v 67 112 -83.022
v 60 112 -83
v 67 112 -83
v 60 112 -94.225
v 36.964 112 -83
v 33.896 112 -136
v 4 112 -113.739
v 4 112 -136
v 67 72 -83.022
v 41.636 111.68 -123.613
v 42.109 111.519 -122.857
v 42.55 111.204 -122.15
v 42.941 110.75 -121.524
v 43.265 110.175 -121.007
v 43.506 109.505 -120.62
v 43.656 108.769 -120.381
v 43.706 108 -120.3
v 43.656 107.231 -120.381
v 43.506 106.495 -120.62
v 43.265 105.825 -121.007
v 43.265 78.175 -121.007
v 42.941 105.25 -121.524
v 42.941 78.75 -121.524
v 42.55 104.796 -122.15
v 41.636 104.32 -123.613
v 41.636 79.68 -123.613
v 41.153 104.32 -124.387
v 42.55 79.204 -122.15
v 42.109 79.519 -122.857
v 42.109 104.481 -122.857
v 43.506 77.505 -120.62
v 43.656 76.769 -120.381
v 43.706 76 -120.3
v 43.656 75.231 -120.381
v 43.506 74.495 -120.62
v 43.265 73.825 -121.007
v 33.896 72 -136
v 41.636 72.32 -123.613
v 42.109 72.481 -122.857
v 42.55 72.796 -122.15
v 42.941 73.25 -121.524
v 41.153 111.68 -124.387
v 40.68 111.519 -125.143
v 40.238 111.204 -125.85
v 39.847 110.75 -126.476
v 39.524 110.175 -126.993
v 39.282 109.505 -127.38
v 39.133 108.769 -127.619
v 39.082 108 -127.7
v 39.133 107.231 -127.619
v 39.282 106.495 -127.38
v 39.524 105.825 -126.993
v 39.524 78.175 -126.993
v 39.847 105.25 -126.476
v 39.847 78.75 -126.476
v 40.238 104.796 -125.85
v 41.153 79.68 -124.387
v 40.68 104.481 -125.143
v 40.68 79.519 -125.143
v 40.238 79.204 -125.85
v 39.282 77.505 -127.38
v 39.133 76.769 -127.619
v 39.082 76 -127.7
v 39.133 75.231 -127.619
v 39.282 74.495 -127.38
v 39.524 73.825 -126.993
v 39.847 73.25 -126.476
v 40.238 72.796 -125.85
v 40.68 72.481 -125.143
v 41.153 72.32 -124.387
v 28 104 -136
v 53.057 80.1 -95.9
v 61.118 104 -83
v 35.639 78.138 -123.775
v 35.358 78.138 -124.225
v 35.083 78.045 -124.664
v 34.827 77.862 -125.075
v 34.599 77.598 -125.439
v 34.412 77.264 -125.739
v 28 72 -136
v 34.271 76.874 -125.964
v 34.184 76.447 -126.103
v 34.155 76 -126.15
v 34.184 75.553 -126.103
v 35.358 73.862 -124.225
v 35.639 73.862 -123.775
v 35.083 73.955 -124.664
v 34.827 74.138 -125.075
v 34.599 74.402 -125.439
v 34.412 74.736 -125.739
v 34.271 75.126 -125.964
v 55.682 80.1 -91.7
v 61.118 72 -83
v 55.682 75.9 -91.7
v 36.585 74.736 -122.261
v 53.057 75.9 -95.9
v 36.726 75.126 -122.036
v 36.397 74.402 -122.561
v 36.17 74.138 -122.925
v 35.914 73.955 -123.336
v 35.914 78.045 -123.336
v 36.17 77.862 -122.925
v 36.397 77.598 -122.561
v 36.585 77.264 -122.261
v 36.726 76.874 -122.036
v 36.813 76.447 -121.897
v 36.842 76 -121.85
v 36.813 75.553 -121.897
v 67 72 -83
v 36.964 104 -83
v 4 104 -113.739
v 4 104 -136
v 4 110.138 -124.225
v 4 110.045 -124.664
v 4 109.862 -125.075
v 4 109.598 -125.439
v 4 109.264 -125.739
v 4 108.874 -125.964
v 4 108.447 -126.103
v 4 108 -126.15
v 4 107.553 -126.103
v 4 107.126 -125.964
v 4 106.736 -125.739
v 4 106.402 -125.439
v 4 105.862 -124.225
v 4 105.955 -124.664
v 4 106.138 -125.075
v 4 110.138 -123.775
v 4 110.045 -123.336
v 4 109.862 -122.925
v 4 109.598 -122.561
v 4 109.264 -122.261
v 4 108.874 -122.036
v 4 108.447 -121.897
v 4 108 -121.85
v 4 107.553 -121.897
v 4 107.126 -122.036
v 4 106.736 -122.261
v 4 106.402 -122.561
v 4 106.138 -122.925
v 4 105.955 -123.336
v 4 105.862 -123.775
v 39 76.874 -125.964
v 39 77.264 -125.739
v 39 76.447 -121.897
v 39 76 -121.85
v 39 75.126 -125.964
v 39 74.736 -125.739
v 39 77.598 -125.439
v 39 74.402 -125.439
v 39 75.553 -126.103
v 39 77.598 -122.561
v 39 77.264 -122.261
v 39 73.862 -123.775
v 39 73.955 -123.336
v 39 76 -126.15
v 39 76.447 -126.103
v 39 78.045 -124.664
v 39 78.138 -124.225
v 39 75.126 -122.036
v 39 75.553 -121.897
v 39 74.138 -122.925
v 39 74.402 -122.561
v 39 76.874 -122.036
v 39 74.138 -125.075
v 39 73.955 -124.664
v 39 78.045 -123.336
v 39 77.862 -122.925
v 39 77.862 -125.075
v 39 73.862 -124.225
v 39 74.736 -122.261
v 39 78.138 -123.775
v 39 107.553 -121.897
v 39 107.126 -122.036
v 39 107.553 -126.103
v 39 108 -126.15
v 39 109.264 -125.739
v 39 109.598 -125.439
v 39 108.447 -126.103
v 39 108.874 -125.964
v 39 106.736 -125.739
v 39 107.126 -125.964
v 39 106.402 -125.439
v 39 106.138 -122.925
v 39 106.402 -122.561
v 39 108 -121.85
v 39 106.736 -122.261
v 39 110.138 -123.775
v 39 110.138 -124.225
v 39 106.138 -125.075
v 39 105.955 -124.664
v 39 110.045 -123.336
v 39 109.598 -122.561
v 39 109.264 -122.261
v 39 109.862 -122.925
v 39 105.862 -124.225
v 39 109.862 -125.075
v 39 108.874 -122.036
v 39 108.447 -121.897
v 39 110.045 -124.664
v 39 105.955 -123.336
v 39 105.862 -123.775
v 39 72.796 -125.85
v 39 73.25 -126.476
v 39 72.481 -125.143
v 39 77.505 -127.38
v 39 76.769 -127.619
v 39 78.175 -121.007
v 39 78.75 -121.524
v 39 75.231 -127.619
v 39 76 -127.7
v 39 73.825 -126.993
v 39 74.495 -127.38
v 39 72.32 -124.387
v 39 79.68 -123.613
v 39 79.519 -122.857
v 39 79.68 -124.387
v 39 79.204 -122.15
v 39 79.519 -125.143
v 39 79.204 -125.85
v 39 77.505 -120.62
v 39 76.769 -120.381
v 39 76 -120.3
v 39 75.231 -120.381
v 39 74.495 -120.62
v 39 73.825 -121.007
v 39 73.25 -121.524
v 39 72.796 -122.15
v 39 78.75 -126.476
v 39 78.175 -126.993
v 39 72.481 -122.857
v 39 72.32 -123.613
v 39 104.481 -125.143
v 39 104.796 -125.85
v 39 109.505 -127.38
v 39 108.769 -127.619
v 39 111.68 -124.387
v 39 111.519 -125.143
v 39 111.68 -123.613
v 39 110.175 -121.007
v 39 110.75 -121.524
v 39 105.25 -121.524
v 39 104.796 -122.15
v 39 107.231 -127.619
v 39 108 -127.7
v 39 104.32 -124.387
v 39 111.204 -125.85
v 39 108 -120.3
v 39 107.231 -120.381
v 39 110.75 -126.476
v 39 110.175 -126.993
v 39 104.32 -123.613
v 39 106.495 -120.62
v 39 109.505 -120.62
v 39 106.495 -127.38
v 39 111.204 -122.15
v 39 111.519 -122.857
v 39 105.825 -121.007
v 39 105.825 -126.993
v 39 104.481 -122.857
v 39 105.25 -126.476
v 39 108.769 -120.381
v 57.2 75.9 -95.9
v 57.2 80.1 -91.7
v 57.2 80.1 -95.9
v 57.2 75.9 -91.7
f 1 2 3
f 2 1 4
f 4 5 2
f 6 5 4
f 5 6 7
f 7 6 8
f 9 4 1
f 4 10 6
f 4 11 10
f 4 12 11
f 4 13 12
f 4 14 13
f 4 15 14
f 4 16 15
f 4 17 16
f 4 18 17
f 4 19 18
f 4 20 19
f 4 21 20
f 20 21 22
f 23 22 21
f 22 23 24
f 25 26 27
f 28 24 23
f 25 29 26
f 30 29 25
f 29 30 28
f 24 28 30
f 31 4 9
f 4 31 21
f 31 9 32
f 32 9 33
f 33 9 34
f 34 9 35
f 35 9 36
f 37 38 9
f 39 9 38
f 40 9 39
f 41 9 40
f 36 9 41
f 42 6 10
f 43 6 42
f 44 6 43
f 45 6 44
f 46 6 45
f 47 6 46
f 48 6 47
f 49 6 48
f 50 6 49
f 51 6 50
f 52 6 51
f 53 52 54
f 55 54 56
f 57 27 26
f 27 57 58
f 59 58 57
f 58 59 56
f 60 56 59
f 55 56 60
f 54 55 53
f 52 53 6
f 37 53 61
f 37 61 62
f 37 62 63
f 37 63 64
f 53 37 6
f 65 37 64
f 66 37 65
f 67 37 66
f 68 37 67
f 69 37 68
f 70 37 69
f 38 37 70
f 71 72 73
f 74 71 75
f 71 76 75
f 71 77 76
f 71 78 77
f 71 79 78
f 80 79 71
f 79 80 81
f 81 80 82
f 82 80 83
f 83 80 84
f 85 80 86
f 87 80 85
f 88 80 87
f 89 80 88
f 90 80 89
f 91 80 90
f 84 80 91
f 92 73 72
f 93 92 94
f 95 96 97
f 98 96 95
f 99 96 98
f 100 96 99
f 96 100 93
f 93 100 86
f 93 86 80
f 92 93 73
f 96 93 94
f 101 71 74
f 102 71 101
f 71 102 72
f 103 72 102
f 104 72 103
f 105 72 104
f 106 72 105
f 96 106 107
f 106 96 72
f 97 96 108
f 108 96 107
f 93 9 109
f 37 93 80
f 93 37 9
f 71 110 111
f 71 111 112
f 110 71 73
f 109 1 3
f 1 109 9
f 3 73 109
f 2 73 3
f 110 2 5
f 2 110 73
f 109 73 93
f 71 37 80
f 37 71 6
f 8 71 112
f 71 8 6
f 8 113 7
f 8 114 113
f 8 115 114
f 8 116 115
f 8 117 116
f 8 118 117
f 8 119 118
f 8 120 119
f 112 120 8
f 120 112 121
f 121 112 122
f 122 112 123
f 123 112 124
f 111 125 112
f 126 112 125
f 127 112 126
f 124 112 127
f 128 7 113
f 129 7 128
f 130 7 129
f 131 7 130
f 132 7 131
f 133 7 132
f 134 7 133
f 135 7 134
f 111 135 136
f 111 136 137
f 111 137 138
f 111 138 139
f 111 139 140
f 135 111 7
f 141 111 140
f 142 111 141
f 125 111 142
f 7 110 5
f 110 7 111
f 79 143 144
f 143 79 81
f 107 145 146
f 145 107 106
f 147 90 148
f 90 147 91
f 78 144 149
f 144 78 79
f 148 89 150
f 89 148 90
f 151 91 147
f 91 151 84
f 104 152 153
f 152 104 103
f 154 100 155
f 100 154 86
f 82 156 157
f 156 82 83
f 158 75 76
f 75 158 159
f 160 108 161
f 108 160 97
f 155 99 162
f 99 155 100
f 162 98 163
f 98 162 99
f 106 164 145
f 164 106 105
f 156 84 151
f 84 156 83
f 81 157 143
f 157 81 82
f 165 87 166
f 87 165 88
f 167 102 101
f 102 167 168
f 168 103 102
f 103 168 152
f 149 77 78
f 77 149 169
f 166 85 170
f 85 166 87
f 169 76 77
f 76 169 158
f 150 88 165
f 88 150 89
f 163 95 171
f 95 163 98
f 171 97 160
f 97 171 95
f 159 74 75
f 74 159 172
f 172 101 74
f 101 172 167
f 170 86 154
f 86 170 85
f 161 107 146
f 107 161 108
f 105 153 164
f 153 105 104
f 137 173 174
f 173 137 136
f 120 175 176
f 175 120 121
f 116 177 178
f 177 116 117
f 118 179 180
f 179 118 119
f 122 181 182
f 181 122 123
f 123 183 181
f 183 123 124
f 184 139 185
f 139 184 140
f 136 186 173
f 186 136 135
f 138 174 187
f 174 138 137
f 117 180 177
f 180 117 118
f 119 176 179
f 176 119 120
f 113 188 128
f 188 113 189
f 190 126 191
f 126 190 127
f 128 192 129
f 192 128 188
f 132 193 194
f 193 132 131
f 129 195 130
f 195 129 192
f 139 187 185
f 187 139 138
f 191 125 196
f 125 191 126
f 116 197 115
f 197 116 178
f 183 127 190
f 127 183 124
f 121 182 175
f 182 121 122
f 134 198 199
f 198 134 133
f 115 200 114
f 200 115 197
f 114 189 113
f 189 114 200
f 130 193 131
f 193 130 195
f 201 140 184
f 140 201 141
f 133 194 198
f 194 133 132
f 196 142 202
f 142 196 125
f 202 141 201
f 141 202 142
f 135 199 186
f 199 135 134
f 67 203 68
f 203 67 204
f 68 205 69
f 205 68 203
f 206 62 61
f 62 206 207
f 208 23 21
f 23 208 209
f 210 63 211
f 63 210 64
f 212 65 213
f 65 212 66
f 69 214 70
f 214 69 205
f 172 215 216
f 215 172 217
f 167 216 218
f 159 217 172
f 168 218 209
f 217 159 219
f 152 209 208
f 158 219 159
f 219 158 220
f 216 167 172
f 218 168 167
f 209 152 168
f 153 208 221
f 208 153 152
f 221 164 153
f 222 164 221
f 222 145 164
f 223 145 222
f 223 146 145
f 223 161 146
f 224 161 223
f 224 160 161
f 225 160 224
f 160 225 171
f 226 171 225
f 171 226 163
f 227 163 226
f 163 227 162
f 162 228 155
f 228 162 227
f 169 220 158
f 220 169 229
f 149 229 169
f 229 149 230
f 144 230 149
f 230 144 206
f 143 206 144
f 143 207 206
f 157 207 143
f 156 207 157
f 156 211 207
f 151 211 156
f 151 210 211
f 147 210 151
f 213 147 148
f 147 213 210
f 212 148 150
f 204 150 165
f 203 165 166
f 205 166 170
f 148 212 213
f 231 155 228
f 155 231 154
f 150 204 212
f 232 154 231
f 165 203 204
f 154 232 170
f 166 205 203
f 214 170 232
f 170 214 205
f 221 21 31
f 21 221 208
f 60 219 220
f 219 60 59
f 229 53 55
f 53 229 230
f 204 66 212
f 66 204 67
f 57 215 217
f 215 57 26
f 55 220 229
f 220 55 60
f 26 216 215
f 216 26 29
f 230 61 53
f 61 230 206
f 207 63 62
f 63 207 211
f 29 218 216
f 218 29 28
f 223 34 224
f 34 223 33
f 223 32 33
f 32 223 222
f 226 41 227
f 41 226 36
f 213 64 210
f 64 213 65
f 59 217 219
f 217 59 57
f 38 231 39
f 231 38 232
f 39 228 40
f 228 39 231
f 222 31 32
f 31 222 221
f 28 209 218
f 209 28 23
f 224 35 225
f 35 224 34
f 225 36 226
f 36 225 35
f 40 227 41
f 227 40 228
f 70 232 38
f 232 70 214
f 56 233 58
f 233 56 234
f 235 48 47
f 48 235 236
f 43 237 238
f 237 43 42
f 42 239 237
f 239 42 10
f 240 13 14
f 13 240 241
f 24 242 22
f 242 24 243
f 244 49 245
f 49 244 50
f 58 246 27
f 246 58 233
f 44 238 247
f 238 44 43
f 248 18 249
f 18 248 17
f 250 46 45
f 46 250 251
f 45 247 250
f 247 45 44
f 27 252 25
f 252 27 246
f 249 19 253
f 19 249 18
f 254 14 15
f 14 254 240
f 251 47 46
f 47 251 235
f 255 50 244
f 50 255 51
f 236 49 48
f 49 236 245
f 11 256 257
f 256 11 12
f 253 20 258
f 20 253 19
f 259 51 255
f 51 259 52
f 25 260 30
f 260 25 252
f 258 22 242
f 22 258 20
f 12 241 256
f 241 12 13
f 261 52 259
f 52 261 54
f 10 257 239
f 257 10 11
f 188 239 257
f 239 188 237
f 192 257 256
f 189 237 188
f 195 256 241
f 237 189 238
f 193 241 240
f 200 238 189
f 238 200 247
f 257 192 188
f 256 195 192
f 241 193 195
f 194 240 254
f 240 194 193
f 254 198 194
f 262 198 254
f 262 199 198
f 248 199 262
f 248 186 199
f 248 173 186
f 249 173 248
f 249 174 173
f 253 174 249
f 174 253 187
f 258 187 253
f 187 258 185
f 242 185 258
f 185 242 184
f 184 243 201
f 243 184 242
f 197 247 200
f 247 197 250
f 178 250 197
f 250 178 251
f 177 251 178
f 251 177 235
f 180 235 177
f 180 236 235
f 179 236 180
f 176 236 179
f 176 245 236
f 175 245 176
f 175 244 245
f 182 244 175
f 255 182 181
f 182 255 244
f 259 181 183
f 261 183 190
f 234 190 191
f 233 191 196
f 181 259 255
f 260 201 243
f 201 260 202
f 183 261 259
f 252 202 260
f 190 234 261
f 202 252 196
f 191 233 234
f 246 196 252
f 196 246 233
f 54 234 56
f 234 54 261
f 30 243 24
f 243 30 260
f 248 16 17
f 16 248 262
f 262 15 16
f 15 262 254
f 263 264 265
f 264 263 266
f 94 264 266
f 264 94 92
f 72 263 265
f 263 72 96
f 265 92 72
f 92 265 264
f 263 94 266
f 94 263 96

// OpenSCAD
// right part of bottom guard rail for left entry
color ("pink")
difference() {
union() {
    // front plate at an angle
    translate([28,72,-136])
    rotate([0,32,0])
    cube([5,40,80]);
    
    // right wall
    translate([-10,104,-135])
    rotate([0,32,0])
    cube([35,8,85]);
}
    // front clean up
    translate([67,60,-90])
    cube([30,60,30]);

    // top clean up
    translate([10,60,-83])
    cube([65,60,30]);

    // bottom clean up
    translate([0,60,-160])
    cube([40,60,24]);
    
    // right clean up
    translate([0,112,-160])
    cube([60,10,100]);
    
    // clean up on bracket side
    // bottom
    translate([-30,60,-150])
    cube([34,60,50]);
    
    // top at an angle
    translate([-40,71,-112])
    rotate([0,47,0])
    cube([31.28,42,87]);
    
    // bottom holes left and right
    translate([-4,76,-124])
    rotate([0,90,0])
    cylinder(r=2.15,60, $fn=30);

    translate([-4,108,-124])
    rotate([0,90,0])
    cylinder(r=2.15,60, $fn=30);

    // spot for screw at the end of the holes
    translate([39,76,-124])
    rotate([0,90,0])
    cylinder(r=3.7,5, $fn=30);
    
    translate([39,108,-124])
    rotate([0,90,0])
    cylinder(r=3.7,5, $fn=30);
    
    // cubed hole to secure left piece
    translate([52,75.9,-95.9])
    cube([5.2,4.2,4.2]);
}
